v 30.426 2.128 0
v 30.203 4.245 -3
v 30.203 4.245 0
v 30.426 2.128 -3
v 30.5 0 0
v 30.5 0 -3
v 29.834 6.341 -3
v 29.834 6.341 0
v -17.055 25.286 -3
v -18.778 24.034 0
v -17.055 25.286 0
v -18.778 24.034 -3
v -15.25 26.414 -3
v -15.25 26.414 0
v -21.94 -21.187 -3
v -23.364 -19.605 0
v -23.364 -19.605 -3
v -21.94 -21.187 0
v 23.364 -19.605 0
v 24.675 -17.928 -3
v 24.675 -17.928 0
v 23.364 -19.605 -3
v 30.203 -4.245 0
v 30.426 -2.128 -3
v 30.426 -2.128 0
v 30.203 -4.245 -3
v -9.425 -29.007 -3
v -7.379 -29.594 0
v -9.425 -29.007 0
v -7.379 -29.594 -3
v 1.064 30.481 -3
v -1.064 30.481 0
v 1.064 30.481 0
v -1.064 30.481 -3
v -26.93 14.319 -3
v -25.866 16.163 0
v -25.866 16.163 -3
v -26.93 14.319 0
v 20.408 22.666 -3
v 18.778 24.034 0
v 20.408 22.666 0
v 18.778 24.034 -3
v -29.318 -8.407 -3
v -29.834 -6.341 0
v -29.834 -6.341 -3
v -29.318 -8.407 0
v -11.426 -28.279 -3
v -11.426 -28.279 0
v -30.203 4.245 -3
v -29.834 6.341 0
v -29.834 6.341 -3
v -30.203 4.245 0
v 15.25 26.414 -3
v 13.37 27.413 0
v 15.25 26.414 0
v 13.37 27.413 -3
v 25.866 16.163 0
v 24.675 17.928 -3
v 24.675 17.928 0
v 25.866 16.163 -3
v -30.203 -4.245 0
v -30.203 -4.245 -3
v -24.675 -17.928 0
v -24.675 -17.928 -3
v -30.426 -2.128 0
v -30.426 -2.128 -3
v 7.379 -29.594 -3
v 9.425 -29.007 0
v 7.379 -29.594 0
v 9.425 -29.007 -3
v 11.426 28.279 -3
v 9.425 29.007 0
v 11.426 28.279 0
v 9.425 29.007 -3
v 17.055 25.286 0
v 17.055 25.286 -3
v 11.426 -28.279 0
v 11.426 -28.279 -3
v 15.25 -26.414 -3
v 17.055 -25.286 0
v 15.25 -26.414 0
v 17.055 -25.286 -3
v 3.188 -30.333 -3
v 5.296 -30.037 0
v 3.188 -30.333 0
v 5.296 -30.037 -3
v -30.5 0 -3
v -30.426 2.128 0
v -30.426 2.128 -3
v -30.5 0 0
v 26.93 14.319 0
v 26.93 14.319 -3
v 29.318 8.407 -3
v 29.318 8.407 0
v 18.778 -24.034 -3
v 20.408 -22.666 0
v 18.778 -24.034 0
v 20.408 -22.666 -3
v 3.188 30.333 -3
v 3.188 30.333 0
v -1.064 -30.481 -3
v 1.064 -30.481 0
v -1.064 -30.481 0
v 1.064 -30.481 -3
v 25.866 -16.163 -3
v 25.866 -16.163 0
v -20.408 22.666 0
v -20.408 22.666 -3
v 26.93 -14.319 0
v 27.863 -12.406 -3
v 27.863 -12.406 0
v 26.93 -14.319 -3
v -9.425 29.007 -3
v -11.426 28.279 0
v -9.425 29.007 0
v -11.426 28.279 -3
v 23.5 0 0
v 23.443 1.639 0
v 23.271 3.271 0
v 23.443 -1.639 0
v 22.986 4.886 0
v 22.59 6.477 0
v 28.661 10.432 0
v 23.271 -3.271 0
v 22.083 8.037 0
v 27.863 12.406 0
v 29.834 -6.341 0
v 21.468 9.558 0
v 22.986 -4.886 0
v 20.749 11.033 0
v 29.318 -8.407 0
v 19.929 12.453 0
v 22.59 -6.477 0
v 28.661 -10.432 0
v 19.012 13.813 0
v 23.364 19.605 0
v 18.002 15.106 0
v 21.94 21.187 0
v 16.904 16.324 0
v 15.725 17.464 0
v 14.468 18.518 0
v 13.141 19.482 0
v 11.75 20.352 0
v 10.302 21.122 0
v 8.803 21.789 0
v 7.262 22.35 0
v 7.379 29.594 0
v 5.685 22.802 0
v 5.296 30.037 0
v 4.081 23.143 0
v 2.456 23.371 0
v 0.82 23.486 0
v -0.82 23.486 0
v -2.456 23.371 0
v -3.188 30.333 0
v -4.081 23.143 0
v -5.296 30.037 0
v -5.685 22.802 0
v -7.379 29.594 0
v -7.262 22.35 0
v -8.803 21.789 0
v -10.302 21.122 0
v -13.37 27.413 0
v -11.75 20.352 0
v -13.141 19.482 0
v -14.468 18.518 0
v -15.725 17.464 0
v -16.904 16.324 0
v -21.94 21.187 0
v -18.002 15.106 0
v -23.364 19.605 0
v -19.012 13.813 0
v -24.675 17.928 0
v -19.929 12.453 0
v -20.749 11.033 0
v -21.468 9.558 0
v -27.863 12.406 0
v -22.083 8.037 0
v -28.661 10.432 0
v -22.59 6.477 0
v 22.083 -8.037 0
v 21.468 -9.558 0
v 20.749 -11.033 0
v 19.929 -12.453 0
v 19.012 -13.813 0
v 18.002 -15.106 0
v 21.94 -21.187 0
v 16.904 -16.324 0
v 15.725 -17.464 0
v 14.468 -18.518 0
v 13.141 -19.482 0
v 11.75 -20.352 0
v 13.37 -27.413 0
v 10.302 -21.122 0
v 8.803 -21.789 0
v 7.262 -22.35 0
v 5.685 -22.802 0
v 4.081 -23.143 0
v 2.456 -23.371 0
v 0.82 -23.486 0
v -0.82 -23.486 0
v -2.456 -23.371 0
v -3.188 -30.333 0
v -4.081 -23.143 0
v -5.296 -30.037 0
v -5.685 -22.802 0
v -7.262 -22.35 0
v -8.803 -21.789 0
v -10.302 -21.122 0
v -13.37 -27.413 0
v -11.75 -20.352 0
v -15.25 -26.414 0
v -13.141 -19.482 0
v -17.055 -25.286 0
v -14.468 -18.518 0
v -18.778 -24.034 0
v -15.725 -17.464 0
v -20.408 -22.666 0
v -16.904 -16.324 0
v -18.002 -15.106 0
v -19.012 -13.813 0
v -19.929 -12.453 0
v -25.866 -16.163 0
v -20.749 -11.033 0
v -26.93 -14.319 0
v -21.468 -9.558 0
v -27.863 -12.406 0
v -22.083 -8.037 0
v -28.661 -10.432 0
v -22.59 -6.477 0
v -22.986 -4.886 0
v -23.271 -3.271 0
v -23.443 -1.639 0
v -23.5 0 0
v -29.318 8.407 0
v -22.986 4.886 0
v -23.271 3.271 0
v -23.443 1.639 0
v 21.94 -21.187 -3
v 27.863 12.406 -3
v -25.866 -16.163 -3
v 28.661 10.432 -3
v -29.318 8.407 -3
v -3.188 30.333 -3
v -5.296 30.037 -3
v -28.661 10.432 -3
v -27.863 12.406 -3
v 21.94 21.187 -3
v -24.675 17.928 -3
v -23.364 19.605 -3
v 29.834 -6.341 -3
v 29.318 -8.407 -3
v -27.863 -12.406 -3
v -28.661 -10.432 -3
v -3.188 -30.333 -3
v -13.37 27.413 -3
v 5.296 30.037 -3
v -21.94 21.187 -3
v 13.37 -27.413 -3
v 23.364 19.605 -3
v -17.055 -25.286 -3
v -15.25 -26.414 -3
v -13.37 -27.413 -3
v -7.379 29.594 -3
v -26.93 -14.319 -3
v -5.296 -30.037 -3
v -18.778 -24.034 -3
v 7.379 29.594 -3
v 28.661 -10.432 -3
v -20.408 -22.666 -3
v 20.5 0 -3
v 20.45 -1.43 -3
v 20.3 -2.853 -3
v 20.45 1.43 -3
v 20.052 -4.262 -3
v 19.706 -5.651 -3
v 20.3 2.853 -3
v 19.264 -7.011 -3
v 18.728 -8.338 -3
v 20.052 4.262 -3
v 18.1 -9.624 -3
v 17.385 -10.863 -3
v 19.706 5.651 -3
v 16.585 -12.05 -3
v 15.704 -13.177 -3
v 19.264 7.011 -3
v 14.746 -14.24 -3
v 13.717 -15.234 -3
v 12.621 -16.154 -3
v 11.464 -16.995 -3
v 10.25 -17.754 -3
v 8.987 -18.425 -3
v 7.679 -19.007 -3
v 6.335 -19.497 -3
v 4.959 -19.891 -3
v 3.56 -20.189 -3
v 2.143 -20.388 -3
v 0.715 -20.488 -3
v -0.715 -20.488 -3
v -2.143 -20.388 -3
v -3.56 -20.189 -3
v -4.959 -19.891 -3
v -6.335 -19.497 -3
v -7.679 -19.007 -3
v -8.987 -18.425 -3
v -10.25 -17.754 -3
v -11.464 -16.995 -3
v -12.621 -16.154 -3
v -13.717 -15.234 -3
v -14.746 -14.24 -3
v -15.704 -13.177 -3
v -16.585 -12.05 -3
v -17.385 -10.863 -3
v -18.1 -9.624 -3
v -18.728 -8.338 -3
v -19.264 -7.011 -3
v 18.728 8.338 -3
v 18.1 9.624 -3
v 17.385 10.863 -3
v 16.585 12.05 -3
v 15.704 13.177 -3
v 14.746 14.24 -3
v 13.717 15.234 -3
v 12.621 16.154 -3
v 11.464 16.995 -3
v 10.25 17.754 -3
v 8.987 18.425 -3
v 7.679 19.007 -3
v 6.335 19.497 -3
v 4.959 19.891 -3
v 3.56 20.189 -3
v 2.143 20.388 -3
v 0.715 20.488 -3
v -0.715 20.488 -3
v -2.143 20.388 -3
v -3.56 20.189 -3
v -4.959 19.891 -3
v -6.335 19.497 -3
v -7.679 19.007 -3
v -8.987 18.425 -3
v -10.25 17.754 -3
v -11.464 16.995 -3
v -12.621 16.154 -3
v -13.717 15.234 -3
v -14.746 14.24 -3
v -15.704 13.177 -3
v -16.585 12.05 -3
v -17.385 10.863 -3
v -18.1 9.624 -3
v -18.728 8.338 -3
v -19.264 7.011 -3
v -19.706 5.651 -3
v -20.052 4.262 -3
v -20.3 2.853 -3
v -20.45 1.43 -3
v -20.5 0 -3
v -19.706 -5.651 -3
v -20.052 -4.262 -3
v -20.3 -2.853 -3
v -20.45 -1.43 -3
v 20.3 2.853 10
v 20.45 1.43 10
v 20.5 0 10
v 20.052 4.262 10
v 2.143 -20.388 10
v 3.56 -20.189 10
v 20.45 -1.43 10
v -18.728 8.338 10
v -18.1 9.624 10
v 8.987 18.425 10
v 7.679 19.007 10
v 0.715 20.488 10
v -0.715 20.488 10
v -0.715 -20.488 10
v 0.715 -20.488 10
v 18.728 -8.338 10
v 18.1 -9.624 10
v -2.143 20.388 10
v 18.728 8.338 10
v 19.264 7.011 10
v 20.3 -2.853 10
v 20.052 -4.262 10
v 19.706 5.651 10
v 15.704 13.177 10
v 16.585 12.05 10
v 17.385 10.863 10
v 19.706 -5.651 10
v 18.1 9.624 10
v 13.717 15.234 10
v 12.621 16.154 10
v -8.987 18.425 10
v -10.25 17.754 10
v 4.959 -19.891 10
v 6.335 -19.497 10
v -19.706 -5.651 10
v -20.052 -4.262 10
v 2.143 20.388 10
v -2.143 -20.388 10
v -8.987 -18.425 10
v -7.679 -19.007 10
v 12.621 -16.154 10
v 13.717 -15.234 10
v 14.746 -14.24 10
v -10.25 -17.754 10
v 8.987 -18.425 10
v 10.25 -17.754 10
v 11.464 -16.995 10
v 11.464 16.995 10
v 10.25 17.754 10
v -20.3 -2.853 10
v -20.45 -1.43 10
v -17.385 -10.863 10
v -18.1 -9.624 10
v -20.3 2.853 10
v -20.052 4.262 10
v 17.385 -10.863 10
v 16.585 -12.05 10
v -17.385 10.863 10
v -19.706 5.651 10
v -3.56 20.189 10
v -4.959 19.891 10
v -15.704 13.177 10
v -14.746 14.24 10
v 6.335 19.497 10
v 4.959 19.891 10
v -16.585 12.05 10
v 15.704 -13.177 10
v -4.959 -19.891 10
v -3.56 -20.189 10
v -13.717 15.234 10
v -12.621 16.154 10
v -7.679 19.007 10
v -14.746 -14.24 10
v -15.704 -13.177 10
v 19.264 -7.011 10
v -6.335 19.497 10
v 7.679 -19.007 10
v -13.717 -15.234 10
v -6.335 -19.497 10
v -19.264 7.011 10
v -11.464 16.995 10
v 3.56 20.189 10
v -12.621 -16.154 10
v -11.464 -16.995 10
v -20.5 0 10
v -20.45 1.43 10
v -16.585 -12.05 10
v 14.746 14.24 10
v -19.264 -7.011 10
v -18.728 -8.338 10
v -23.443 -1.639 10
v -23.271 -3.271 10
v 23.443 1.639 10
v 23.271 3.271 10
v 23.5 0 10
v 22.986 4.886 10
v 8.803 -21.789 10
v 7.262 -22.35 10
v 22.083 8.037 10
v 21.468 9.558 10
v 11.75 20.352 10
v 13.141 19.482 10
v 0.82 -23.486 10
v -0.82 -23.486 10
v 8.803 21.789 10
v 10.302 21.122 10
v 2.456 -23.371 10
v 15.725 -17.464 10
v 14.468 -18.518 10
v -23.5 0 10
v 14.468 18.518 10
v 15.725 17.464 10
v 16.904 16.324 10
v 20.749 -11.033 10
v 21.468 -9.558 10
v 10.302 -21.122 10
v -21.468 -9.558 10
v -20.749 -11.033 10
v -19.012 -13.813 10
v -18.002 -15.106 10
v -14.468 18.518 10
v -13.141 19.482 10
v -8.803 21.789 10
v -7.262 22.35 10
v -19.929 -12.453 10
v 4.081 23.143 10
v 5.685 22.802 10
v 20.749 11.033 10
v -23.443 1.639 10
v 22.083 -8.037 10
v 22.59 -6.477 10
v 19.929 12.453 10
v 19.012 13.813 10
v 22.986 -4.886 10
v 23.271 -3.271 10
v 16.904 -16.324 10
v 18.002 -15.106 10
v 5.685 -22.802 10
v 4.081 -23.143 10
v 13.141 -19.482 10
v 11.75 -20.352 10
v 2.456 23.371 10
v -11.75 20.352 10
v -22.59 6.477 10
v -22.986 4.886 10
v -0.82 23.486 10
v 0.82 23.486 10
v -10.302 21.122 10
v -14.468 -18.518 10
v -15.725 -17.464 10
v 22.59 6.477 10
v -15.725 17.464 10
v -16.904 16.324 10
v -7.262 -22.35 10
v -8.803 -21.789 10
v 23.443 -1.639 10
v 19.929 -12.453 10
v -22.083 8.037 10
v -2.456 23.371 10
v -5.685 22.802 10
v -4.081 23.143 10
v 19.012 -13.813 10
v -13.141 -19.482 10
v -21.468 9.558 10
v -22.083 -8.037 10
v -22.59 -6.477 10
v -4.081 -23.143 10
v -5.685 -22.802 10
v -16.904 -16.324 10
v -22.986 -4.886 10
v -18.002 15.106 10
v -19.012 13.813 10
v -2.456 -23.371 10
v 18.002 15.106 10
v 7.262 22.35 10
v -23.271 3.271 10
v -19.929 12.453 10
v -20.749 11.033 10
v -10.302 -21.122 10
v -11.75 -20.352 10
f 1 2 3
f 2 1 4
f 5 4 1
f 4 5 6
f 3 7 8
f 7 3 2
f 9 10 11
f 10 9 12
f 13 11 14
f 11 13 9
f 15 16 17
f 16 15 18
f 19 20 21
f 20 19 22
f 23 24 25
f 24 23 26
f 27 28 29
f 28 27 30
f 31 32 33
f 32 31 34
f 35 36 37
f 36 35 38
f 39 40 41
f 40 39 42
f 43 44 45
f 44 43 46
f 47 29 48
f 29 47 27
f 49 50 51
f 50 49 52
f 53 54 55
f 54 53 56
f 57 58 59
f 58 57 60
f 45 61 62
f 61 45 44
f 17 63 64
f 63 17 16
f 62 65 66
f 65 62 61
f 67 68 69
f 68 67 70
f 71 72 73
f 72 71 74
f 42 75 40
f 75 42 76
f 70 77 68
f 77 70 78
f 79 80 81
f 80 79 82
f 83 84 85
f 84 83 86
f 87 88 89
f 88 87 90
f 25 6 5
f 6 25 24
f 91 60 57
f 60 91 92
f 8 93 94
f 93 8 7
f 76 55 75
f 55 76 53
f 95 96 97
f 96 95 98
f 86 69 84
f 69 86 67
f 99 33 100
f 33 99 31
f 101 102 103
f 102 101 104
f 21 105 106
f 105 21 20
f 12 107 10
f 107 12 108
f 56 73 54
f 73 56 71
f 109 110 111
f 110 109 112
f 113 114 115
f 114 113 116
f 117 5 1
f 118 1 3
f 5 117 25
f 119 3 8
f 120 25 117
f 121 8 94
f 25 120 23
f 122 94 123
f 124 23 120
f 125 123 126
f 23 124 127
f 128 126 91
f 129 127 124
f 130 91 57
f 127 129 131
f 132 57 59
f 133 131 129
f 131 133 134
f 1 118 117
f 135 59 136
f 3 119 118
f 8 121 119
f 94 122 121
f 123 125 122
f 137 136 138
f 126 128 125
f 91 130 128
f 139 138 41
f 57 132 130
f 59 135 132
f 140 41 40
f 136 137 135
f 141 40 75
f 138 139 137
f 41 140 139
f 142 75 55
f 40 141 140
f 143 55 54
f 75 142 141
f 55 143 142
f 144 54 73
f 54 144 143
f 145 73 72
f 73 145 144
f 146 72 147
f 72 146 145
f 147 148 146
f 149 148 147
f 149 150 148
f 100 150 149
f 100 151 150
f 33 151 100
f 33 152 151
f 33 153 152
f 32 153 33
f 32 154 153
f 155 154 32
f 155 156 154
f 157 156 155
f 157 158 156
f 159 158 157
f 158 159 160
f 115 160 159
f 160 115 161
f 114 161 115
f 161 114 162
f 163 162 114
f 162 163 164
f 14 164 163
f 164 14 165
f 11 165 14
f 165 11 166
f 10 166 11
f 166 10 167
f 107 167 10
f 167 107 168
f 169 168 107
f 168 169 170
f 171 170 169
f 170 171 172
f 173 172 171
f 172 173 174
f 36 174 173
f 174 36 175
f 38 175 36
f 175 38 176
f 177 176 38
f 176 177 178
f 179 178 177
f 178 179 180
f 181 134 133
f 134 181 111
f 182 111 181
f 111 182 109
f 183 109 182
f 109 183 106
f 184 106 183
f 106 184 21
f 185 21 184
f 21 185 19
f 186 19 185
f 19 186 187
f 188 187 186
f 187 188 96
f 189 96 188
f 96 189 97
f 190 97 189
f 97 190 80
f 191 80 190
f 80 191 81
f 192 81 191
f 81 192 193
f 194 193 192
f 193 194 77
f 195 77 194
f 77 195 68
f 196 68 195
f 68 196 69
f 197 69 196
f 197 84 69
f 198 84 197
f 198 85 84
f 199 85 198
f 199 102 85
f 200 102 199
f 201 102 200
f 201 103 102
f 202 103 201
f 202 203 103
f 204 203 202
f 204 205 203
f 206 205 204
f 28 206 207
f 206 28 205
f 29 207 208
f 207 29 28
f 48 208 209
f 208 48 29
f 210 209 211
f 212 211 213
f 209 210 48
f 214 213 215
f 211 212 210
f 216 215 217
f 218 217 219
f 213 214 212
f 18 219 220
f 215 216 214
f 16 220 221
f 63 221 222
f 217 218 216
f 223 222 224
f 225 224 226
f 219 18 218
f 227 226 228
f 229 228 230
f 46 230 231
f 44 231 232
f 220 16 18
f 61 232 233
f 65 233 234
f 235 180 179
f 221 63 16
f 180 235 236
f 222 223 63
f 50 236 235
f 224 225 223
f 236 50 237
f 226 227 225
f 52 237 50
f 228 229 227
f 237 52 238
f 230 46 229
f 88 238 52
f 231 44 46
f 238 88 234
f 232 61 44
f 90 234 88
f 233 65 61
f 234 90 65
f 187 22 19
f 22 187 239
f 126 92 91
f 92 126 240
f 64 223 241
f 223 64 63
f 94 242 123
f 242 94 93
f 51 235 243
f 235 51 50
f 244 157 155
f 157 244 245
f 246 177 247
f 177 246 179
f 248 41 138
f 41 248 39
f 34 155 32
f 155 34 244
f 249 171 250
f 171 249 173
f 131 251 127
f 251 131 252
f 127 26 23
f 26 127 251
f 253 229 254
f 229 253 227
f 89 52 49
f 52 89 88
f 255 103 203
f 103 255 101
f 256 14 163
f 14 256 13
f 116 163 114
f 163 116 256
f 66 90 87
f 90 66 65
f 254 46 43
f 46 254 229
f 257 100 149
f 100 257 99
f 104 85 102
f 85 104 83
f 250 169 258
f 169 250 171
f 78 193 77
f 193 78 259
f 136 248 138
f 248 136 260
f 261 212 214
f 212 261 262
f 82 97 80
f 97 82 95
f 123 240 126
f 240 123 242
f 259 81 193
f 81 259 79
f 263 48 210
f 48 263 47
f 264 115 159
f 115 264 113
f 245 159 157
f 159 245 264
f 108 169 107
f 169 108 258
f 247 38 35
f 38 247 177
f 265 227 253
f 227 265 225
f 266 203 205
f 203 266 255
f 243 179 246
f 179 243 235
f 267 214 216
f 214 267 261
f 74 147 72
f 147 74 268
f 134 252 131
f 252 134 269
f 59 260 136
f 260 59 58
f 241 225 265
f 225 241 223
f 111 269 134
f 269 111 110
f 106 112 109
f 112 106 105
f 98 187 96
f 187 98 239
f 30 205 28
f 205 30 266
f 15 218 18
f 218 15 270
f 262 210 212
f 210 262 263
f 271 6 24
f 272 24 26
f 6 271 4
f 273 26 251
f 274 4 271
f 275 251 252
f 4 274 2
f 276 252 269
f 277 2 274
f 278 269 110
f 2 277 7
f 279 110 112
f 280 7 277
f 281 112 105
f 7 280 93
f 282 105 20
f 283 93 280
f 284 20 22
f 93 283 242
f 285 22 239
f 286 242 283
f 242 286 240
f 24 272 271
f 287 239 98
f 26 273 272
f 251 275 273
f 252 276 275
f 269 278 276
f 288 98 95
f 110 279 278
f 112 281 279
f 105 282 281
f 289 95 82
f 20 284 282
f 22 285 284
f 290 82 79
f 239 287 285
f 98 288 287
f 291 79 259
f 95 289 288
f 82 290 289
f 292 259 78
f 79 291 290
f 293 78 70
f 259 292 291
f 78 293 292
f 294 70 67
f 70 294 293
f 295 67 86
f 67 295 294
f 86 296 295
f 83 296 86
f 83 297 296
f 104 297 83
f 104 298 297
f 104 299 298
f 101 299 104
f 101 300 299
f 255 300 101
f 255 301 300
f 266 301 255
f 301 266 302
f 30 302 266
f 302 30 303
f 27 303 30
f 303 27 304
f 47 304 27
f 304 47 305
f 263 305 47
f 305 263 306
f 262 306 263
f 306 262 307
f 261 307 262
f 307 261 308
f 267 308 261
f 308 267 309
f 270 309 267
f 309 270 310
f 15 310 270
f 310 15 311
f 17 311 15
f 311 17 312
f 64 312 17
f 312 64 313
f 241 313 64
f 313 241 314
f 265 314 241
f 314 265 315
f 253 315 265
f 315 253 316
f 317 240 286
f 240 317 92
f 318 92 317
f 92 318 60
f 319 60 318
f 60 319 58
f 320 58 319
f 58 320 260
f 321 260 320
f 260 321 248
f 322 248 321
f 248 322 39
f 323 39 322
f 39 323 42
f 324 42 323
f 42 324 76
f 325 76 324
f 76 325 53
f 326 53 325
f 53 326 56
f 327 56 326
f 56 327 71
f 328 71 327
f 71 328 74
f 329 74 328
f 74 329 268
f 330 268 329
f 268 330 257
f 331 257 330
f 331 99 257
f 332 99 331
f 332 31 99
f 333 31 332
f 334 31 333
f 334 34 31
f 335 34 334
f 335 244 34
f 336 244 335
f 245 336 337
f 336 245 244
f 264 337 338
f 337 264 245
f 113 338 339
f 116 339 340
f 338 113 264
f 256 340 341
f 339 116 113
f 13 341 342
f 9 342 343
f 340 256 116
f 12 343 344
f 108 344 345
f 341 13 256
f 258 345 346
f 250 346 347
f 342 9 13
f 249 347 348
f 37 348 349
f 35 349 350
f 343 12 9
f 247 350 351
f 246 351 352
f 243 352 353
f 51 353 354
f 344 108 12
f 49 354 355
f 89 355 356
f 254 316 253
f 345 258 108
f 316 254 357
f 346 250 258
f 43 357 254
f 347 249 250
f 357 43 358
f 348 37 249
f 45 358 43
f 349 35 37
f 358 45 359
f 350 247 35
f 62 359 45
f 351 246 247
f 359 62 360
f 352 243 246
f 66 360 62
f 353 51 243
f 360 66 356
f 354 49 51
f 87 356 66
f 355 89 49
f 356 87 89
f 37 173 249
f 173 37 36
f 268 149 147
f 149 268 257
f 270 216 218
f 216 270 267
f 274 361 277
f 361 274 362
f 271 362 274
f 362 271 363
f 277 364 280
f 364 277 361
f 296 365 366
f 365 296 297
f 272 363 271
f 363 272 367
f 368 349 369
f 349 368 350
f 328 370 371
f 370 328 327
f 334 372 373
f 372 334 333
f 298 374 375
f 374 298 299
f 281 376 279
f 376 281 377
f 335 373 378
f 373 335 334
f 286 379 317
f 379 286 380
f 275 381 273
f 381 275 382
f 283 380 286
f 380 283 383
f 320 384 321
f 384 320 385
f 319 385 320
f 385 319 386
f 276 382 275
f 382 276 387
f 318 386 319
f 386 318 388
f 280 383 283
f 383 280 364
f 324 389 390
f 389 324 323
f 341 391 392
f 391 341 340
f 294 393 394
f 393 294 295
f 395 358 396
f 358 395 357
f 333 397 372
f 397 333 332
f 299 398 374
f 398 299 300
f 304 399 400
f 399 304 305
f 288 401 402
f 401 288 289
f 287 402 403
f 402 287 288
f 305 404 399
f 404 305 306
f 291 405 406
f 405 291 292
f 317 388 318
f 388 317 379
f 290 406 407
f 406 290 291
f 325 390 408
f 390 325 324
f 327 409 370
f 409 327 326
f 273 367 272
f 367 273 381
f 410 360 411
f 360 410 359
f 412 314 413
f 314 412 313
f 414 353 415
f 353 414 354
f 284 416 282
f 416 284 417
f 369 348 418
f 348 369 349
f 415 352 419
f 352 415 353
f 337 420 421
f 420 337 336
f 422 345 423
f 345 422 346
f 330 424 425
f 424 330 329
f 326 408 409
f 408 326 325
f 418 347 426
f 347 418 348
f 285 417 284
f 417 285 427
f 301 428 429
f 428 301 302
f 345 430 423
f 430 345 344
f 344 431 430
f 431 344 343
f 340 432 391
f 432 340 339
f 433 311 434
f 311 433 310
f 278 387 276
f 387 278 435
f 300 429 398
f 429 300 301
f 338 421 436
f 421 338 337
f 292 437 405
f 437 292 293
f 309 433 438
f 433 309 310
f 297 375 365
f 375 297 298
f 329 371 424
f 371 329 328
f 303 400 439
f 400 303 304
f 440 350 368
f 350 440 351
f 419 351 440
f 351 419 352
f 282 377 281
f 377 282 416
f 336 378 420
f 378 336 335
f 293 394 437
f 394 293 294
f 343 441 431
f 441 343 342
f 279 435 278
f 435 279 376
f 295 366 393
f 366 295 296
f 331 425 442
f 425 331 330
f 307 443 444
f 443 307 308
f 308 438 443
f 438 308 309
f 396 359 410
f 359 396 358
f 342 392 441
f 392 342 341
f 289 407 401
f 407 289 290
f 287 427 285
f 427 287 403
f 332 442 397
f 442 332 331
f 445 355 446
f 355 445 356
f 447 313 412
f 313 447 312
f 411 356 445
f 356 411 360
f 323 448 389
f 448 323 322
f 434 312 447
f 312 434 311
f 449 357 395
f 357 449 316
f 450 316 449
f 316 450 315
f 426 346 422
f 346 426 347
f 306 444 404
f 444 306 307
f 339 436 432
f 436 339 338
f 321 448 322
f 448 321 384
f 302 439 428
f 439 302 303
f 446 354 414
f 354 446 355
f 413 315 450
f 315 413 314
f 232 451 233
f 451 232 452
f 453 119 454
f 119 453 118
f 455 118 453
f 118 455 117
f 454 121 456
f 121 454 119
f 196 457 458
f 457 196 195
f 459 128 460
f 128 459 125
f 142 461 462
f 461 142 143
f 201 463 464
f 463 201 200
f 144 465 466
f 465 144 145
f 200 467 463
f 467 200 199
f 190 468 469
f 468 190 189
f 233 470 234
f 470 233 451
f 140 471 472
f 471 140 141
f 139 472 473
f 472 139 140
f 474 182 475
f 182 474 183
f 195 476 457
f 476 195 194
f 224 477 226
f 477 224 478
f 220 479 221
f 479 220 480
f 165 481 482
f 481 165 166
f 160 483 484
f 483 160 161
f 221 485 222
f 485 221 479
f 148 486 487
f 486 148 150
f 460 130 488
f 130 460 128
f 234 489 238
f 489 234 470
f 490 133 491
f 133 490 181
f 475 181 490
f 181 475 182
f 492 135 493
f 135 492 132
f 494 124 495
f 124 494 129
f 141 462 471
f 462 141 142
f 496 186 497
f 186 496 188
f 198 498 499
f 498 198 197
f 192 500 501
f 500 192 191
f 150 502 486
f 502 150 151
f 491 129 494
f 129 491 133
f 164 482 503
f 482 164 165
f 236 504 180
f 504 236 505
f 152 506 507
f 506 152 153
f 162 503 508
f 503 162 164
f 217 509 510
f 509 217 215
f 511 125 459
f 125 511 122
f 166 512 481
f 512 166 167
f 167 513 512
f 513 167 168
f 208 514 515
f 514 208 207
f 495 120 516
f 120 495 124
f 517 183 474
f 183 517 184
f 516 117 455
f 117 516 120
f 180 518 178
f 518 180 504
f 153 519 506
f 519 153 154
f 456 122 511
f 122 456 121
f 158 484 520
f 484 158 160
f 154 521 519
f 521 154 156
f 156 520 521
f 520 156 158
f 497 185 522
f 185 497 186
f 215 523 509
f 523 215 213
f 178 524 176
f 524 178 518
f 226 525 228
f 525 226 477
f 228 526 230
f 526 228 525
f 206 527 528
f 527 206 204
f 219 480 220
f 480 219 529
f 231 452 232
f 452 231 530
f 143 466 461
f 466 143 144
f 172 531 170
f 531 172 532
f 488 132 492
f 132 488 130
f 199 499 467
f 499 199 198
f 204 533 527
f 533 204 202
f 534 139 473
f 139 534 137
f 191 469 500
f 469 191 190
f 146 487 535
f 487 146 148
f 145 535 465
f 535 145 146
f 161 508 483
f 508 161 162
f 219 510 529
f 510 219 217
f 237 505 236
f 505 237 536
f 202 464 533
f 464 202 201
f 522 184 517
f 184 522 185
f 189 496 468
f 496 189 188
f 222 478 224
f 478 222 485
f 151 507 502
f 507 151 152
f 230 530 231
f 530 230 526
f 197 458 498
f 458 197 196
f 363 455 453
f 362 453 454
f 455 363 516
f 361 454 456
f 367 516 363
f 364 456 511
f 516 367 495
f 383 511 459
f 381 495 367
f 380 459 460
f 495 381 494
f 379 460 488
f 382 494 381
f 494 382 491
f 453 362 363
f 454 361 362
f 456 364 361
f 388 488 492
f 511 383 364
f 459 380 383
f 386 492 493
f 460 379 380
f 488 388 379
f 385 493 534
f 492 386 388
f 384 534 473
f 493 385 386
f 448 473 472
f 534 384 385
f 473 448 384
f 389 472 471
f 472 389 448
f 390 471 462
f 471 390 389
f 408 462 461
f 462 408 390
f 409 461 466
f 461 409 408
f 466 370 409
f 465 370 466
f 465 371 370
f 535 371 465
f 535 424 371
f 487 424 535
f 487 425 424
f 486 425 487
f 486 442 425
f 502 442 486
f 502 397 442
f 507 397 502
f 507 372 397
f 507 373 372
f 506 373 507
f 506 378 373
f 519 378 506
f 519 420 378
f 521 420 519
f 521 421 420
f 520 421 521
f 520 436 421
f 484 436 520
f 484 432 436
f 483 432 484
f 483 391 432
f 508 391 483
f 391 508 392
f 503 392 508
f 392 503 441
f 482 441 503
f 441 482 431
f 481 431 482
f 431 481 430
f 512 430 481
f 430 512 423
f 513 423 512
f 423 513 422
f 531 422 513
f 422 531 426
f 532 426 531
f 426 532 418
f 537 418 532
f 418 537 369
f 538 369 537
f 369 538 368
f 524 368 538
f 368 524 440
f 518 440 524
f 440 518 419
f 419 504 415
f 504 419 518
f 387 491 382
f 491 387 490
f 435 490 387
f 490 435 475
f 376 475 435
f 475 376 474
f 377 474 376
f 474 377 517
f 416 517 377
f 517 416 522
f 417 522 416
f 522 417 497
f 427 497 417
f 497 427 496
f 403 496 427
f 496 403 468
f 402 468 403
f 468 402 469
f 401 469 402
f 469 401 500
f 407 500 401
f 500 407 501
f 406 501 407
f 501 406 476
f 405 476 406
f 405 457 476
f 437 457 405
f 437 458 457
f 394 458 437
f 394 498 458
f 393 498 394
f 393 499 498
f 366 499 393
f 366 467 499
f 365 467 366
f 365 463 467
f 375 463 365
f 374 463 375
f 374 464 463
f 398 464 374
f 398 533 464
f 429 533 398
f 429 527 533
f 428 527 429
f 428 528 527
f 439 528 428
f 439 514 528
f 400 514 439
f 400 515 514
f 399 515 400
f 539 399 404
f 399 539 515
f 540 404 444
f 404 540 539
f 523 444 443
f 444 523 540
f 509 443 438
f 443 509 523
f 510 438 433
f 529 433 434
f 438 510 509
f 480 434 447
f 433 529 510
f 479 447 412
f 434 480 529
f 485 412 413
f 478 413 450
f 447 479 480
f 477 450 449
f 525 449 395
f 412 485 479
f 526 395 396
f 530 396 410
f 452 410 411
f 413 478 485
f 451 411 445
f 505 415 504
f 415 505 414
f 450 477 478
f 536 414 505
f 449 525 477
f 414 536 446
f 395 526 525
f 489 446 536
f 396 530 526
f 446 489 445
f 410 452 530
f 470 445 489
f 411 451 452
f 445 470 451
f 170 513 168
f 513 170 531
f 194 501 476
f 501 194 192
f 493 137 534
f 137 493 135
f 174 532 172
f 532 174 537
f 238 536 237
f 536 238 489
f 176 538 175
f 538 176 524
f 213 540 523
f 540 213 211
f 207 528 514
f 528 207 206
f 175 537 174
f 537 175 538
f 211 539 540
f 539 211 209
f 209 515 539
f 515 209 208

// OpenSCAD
$fn = 90;

lipDiameter=47;
innerDiameter=lipDiameter - 6;
outerDiameter = innerDiameter + 20;
topDepth = 3;
lipDepth = 10;

translate([0, 0, -topDepth / 2])
difference() {
cylinder(d=outerDiameter, h=topDepth, center=true);
cylinder(d=innerDiameter, h=topDepth, center=true);
}

translate([0, 0, lipDepth / 2])
difference() {
cylinder(d=lipDiameter, h=lipDepth, center=true);
cylinder(d=innerDiameter, h=lipDepth, center=true);
}    
